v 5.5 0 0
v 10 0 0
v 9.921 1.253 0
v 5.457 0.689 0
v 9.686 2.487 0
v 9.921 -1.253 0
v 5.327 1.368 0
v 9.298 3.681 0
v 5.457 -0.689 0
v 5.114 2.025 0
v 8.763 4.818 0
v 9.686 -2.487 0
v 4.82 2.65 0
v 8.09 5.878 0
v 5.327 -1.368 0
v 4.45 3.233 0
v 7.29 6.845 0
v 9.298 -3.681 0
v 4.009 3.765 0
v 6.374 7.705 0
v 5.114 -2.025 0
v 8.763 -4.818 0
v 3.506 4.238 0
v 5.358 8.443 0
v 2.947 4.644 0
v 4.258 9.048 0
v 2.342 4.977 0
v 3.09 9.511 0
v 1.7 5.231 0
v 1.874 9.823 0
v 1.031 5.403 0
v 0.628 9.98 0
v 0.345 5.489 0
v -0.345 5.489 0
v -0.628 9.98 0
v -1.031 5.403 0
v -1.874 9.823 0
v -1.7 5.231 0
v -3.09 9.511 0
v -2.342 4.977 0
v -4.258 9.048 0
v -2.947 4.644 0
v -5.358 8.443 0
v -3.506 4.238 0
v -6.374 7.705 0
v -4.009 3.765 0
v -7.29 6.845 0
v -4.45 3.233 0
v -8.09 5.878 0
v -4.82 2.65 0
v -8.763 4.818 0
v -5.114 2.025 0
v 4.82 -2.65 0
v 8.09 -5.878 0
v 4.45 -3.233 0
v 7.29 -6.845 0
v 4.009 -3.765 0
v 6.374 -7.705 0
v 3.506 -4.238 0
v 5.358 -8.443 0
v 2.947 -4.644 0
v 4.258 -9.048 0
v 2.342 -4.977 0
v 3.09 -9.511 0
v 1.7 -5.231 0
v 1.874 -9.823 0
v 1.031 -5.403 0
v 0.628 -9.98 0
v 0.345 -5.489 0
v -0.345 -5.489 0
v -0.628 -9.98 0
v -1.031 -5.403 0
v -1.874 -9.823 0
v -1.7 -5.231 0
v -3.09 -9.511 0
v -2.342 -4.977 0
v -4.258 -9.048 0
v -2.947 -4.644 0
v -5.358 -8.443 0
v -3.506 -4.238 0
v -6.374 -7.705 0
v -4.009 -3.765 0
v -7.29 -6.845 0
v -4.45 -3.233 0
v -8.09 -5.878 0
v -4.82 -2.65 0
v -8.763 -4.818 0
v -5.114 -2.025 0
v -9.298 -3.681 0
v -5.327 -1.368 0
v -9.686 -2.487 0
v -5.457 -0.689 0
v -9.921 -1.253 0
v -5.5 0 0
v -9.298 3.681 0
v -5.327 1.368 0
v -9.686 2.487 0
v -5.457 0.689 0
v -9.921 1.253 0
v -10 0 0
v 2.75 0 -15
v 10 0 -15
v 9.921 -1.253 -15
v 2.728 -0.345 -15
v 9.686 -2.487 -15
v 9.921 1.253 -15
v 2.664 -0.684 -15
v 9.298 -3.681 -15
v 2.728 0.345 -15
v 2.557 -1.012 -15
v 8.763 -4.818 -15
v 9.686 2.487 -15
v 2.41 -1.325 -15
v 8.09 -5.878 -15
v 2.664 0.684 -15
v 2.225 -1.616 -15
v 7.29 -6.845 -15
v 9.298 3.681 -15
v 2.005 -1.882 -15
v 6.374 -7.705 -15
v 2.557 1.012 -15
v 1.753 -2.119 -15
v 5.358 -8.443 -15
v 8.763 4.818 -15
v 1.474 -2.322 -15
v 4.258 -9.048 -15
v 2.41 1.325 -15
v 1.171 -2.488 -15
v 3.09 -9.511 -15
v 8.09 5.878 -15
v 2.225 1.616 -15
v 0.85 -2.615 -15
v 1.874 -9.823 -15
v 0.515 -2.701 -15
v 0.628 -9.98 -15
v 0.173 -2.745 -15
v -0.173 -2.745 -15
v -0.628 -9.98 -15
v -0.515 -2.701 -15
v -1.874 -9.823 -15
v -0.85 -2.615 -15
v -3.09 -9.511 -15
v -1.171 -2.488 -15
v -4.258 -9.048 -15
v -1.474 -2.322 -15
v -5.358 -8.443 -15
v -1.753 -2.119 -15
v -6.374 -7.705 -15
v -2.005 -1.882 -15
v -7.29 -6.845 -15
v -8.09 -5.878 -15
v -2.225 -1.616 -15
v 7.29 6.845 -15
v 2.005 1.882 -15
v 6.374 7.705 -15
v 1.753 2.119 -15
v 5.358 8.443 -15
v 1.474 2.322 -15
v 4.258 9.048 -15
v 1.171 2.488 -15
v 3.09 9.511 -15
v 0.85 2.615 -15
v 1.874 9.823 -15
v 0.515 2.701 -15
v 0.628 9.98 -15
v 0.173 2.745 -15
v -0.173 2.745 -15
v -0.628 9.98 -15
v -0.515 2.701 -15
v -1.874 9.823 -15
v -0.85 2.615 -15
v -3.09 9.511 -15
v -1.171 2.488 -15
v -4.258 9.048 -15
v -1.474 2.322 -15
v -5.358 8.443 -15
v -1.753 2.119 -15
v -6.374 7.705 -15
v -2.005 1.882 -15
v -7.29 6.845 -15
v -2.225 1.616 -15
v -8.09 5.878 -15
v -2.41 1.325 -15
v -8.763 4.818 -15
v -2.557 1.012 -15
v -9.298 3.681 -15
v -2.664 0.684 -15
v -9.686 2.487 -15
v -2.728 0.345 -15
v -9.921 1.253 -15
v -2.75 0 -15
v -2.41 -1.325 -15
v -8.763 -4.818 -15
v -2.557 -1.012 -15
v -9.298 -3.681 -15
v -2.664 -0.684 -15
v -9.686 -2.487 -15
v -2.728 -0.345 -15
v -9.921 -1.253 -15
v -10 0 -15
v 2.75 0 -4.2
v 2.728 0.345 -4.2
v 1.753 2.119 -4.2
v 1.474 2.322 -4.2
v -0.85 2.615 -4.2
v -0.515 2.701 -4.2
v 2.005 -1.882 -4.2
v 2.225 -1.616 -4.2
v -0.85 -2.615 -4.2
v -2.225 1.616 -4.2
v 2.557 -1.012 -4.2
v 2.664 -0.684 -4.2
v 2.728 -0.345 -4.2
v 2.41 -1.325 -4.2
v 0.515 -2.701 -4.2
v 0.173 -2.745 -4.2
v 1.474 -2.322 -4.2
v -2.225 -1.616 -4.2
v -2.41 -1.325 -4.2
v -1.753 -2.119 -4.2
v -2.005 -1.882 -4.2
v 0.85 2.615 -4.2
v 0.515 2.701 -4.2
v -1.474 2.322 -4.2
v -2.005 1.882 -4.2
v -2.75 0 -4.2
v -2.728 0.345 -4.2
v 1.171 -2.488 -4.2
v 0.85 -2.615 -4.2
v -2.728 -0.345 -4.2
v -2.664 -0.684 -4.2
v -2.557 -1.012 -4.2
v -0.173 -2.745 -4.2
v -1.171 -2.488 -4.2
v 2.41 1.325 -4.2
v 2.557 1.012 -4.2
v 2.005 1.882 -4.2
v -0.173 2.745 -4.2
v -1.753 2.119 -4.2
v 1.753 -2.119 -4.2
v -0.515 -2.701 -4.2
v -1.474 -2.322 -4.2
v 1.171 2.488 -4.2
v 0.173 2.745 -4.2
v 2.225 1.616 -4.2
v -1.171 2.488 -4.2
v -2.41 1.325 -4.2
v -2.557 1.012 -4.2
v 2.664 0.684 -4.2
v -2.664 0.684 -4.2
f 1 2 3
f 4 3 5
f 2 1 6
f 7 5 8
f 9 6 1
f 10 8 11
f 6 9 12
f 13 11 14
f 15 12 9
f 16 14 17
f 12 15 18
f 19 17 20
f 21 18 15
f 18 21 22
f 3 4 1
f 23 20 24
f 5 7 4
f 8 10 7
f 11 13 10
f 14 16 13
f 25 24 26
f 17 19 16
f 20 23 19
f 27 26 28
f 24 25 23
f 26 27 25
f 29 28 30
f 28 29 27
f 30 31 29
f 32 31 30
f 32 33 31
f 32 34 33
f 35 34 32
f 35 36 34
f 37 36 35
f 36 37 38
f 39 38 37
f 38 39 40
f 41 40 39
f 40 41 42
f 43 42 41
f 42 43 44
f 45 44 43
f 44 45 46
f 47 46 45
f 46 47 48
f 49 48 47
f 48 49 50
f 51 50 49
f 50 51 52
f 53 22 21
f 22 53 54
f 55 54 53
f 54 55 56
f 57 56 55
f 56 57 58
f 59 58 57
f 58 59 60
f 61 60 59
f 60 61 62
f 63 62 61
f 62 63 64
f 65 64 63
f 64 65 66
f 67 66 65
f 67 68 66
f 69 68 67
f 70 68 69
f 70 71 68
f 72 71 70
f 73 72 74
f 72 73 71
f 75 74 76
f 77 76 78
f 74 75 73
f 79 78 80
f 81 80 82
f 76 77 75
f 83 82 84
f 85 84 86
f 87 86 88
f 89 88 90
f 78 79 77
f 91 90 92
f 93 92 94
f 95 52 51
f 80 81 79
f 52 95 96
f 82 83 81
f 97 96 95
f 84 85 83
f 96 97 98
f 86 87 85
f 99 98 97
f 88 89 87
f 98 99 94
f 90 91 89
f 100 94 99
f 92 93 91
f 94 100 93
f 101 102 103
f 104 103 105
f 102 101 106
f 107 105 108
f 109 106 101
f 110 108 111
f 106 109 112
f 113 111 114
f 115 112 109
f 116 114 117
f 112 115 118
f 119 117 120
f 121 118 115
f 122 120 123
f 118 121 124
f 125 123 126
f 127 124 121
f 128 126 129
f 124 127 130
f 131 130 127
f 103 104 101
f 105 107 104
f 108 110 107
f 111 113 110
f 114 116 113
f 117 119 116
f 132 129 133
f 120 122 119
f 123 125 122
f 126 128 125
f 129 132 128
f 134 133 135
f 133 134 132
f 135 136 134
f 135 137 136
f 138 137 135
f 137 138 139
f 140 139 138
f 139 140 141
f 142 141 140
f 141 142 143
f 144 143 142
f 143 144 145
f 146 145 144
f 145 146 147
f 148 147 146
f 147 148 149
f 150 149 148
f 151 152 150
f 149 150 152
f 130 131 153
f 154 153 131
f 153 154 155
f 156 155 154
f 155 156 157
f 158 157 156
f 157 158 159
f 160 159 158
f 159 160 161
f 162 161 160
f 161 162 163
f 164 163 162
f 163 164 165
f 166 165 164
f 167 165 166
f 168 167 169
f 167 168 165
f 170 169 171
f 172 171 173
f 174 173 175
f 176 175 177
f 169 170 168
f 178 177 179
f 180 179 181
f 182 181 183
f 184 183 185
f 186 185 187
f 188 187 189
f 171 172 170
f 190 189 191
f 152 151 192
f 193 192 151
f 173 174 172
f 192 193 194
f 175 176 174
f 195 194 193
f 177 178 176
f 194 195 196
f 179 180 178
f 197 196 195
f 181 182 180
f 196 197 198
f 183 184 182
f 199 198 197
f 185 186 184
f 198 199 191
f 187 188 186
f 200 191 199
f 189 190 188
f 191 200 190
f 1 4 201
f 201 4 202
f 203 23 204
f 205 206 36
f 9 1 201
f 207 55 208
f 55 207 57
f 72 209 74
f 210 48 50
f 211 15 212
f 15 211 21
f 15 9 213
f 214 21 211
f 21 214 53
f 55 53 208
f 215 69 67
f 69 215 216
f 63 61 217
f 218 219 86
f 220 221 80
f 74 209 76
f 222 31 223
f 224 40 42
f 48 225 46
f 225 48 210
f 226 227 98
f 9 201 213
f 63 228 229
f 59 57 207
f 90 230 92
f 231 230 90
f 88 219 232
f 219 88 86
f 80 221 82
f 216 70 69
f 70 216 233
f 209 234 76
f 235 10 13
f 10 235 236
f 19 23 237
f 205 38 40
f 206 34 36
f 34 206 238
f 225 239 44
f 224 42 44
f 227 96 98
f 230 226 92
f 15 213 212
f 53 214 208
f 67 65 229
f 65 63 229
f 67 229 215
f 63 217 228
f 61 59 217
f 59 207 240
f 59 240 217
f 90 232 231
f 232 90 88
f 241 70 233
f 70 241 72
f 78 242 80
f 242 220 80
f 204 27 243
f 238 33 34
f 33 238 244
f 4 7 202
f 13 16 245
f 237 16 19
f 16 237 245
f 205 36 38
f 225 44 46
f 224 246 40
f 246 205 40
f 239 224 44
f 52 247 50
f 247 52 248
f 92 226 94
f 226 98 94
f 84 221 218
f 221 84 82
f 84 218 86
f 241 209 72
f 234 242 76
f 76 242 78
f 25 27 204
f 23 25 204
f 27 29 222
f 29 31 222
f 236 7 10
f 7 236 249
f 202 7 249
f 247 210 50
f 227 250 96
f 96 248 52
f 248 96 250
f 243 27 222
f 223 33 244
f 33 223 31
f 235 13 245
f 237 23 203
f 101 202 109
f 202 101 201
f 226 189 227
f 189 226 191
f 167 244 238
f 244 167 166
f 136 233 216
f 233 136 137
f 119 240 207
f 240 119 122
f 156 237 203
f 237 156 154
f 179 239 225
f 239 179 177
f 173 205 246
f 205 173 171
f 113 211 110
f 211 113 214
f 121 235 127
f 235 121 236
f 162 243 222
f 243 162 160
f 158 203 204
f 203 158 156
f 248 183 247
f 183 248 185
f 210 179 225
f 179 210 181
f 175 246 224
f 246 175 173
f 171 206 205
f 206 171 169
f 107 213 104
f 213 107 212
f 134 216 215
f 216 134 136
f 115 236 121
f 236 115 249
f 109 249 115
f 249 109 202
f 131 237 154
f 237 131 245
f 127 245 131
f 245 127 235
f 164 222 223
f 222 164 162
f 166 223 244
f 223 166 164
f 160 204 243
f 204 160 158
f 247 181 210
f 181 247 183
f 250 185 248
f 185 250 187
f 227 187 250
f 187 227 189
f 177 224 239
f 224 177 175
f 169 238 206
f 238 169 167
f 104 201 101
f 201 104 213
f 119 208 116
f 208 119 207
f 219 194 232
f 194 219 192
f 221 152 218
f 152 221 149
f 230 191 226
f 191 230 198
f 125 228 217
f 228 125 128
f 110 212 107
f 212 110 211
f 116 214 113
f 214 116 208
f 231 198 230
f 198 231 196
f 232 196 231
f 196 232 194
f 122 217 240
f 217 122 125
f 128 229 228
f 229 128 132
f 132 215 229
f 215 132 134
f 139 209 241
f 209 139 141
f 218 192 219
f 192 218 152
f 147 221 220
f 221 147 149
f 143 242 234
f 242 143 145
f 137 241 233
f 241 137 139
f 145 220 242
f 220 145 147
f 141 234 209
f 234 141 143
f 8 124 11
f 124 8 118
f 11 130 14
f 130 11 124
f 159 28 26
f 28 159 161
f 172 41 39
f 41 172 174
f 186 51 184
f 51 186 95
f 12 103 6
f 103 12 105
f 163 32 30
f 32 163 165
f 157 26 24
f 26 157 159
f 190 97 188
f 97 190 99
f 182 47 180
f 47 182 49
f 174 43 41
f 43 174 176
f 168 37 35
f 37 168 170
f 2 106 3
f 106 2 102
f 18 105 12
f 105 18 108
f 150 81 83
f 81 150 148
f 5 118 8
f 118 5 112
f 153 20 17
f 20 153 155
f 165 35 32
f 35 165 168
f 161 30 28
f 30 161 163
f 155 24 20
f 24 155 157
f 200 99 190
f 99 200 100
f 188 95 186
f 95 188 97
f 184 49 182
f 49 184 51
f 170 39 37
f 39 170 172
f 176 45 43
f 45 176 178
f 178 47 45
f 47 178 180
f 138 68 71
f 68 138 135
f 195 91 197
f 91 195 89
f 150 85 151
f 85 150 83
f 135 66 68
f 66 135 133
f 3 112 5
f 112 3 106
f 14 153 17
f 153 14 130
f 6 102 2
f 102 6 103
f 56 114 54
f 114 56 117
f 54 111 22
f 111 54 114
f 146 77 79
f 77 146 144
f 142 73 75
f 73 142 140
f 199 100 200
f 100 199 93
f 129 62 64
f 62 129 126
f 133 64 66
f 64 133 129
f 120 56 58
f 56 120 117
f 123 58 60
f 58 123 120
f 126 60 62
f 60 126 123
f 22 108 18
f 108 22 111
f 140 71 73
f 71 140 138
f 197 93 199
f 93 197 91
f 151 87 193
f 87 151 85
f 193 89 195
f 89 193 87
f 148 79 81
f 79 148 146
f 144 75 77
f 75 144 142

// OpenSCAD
$fn = 50;


difference() {
	union() {
		translate(v = [0, 0, -15.0000000000]) {
			cylinder(h = 15, r = 10.0000000000);
		}
		cylinder(h = 0, r = 20.0000000000);
	}
	union() {
		translate(v = [0, 0, 0]) {
			rotate(a = [0, 0, 0]) {
				difference() {
					union() {
						#translate(v = [0, 0, -15.0000000000]) {
							cylinder(h = 15, r = 2.2500000000);
						}
						#translate(v = [0, 0, -4.2000000000]) {
							cylinder(h = 4.2000000000, r1 = 2.7500000000, r2 = 5.5000000000);
						}
						#translate(v = [0, 0, -15.0000000000]) {
							cylinder(h = 15, r = 2.7500000000);
						}
						#translate(v = [0, 0, -15.0000000000]) {
							cylinder(h = 15, r = 2.2500000000);
						}
					}
					union();
				}
			}
		}
	}
}
